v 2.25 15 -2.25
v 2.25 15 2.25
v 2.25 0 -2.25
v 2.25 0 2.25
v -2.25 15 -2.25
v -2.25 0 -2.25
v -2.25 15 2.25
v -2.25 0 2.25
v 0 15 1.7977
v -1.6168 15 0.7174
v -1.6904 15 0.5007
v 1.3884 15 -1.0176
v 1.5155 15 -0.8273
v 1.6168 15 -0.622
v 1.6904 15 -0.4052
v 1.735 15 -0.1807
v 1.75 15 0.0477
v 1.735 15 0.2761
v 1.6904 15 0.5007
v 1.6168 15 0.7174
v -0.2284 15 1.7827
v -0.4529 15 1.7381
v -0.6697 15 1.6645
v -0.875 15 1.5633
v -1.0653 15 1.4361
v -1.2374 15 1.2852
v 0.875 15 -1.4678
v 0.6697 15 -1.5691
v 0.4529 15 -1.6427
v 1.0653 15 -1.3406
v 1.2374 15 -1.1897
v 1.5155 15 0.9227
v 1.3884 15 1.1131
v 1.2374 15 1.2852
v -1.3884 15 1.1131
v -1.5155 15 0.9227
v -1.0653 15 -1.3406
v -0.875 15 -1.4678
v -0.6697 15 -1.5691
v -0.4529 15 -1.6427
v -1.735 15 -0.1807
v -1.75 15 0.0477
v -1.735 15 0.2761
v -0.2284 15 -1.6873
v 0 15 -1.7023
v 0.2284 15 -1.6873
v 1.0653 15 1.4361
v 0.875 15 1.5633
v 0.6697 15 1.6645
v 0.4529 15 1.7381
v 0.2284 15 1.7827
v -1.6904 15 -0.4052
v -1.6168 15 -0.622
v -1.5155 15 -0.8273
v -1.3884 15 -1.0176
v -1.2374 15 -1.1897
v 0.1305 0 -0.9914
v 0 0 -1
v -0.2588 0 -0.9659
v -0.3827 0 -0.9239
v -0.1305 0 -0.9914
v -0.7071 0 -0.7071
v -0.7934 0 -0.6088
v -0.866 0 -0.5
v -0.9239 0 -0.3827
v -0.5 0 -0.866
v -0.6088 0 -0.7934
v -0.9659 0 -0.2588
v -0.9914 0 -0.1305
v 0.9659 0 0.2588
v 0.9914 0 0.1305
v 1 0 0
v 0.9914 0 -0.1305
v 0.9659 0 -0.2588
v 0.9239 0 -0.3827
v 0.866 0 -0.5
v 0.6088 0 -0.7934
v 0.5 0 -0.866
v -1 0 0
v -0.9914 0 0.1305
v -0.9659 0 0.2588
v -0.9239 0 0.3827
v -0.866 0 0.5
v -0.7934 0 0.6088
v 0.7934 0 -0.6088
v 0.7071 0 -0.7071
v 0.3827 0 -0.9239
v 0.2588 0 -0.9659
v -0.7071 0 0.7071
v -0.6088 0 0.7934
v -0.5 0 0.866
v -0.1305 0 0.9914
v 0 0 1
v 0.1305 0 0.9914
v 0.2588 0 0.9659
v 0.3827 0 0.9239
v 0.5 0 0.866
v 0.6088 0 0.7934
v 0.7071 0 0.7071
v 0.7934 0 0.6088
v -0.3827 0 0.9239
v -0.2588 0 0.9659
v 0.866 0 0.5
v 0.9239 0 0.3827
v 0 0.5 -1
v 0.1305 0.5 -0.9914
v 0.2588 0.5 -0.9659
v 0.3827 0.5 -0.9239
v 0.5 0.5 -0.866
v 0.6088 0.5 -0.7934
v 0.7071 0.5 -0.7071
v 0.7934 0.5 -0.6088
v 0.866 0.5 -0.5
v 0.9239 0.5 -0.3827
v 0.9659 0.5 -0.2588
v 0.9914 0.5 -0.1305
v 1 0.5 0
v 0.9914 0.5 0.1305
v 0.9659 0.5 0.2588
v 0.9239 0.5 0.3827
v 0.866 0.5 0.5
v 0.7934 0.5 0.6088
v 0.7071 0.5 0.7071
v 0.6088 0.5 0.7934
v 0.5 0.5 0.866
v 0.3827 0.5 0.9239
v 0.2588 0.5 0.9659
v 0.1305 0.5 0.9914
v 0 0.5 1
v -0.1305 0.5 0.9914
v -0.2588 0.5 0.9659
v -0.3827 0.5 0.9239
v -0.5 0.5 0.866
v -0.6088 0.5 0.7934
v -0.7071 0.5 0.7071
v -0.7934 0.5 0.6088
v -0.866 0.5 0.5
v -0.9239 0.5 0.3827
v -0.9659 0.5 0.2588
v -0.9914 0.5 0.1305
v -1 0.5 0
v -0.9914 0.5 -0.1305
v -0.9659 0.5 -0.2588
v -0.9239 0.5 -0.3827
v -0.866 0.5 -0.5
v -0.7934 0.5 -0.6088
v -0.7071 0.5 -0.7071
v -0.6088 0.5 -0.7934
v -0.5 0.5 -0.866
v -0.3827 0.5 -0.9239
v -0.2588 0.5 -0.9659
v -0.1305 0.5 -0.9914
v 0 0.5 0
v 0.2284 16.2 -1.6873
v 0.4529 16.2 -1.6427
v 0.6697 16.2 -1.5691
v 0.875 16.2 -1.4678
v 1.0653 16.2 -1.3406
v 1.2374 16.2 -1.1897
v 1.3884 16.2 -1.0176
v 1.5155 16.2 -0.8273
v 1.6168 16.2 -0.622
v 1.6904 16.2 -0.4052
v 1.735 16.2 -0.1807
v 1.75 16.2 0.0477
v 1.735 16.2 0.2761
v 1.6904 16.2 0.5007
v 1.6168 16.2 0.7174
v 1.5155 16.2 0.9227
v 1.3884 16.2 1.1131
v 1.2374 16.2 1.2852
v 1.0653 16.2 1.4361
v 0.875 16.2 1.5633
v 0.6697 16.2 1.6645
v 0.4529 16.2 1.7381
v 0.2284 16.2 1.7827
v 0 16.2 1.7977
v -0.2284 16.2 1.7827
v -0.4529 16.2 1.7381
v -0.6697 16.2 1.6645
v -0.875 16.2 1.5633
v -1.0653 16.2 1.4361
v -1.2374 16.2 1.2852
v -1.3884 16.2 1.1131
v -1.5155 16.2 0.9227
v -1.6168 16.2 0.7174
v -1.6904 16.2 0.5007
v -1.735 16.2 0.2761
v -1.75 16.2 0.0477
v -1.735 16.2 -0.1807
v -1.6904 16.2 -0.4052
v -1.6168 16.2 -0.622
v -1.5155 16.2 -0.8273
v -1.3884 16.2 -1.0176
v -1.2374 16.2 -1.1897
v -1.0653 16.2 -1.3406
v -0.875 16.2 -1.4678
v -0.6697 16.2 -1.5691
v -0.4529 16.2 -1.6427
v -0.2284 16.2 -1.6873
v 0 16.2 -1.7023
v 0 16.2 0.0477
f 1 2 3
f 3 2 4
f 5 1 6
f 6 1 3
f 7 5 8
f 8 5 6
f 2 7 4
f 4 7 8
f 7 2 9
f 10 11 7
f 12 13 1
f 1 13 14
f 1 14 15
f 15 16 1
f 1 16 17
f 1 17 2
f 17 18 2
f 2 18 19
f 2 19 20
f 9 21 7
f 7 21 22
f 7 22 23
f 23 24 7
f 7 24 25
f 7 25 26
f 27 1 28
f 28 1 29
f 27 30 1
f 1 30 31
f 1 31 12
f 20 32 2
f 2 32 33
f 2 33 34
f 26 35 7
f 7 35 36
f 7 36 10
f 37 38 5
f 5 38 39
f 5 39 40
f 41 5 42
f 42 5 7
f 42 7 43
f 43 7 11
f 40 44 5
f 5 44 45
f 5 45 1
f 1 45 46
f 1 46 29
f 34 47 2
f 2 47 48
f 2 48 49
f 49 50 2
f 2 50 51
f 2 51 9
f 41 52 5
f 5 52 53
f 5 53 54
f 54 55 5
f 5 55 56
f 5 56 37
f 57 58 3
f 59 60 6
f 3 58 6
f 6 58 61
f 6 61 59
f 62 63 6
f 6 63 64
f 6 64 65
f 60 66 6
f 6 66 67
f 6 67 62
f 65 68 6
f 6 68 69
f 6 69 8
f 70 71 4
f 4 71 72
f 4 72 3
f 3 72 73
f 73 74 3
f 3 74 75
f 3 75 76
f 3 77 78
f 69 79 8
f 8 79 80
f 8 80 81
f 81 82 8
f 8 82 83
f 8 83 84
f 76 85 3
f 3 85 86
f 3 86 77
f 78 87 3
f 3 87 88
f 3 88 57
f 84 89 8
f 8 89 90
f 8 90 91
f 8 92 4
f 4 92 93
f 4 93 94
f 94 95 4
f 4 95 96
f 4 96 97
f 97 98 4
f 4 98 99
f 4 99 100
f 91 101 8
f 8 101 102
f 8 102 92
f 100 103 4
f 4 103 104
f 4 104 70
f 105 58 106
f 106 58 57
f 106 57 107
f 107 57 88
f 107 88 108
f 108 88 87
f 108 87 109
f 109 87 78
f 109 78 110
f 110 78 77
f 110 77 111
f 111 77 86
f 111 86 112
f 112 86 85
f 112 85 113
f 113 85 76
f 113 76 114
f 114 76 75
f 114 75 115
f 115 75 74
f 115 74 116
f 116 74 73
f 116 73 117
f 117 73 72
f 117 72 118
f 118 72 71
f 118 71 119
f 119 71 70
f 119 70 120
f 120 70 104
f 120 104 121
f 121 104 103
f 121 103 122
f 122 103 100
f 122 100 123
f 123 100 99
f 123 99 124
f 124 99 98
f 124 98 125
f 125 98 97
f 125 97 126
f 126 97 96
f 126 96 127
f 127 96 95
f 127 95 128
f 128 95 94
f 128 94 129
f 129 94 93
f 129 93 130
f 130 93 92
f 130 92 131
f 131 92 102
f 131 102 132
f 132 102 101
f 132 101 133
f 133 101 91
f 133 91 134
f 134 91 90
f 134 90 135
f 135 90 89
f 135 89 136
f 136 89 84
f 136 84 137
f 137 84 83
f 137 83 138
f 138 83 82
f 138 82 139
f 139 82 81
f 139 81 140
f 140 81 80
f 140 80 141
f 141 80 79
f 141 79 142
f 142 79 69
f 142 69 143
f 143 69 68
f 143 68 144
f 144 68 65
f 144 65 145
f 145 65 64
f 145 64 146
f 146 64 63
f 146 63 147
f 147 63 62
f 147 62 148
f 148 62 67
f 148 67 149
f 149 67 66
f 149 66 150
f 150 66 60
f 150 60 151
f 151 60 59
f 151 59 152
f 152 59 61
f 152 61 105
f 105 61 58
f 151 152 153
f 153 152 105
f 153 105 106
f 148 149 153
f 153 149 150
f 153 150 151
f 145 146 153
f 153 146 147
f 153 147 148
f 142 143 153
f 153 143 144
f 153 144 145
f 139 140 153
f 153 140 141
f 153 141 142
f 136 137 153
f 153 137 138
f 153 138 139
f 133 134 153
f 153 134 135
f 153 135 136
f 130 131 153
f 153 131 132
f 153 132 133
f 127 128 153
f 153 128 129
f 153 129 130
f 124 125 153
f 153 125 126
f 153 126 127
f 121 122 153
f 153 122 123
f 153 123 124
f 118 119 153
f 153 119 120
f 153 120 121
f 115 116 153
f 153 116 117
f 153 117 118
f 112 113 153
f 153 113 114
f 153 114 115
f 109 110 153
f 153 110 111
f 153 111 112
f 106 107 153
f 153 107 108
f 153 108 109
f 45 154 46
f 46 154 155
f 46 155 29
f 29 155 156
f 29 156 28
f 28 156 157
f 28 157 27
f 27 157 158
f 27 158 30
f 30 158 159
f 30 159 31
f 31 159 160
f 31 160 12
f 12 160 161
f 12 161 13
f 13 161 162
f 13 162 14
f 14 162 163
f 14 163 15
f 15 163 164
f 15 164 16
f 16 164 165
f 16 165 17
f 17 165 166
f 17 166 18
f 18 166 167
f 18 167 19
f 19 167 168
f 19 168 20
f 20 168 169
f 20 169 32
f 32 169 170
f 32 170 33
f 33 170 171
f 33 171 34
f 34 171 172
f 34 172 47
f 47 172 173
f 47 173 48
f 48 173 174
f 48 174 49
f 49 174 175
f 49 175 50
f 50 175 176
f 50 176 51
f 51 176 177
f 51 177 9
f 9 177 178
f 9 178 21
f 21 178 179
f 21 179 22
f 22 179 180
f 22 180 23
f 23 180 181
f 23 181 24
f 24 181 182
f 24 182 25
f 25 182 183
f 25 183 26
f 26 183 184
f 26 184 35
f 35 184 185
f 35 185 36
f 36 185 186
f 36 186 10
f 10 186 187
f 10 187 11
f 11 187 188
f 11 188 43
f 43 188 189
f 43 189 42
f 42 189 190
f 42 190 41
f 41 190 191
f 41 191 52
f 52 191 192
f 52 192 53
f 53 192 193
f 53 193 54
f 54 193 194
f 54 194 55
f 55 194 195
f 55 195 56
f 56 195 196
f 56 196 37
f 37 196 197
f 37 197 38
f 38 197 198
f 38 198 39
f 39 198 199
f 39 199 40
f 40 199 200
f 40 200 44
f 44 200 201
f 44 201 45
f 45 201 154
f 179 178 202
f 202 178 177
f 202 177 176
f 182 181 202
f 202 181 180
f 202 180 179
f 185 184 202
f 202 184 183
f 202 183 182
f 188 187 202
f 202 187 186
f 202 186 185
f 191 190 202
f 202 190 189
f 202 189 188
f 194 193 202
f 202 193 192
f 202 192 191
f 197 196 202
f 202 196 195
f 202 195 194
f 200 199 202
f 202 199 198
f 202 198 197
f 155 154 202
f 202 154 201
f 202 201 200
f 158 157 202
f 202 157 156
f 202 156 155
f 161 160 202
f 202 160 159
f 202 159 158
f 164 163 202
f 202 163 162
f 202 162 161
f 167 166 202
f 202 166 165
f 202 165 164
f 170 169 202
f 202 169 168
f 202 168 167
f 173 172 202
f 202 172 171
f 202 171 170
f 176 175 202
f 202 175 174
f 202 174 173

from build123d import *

# Parameters (mm, degrees)
SKETCH1_W           = 4.5
SKETCH1_H           = 4.5
BOSS_EXTRUDE1_DEPTH = 15
SKETCH2_R           = 1
CUT_EXTRUDE1_DEPTH  = 0.5
SKETCH4_R           = 1.75
BOSS_EXTRUDE2_DEPTH = 1.2


with BuildPart() as part:
    # Sketch1 → Boss-Extrude1 (new body)
    with BuildSketch(Plane(origin=(0, 0, 0), x_dir=(1, 0, 0), z_dir=(0, 1, 0))):
        Rectangle(SKETCH1_W, SKETCH1_H)
    extrude(amount=BOSS_EXTRUDE1_DEPTH)

    # Sketch2 → Cut-Extrude1 (cut)
    with BuildSketch(Plane.XZ):
        with Locations(Location((0, 0, 0), (0, 0, 270))):
            Circle(SKETCH2_R)
    extrude(amount=-CUT_EXTRUDE1_DEPTH, mode=Mode.SUBTRACT)

    # Sketch4 → Boss-Extrude2 (add)
    with BuildSketch(Plane(origin=(0, 15, 0), x_dir=(1, 0, 0), z_dir=(0, 1, 0))):
        with Locations(Location((0, -0.04771887, 0), (0, 0, 270))):
            Circle(SKETCH4_R)
    extrude(amount=BOSS_EXTRUDE2_DEPTH)


solid = part.part
